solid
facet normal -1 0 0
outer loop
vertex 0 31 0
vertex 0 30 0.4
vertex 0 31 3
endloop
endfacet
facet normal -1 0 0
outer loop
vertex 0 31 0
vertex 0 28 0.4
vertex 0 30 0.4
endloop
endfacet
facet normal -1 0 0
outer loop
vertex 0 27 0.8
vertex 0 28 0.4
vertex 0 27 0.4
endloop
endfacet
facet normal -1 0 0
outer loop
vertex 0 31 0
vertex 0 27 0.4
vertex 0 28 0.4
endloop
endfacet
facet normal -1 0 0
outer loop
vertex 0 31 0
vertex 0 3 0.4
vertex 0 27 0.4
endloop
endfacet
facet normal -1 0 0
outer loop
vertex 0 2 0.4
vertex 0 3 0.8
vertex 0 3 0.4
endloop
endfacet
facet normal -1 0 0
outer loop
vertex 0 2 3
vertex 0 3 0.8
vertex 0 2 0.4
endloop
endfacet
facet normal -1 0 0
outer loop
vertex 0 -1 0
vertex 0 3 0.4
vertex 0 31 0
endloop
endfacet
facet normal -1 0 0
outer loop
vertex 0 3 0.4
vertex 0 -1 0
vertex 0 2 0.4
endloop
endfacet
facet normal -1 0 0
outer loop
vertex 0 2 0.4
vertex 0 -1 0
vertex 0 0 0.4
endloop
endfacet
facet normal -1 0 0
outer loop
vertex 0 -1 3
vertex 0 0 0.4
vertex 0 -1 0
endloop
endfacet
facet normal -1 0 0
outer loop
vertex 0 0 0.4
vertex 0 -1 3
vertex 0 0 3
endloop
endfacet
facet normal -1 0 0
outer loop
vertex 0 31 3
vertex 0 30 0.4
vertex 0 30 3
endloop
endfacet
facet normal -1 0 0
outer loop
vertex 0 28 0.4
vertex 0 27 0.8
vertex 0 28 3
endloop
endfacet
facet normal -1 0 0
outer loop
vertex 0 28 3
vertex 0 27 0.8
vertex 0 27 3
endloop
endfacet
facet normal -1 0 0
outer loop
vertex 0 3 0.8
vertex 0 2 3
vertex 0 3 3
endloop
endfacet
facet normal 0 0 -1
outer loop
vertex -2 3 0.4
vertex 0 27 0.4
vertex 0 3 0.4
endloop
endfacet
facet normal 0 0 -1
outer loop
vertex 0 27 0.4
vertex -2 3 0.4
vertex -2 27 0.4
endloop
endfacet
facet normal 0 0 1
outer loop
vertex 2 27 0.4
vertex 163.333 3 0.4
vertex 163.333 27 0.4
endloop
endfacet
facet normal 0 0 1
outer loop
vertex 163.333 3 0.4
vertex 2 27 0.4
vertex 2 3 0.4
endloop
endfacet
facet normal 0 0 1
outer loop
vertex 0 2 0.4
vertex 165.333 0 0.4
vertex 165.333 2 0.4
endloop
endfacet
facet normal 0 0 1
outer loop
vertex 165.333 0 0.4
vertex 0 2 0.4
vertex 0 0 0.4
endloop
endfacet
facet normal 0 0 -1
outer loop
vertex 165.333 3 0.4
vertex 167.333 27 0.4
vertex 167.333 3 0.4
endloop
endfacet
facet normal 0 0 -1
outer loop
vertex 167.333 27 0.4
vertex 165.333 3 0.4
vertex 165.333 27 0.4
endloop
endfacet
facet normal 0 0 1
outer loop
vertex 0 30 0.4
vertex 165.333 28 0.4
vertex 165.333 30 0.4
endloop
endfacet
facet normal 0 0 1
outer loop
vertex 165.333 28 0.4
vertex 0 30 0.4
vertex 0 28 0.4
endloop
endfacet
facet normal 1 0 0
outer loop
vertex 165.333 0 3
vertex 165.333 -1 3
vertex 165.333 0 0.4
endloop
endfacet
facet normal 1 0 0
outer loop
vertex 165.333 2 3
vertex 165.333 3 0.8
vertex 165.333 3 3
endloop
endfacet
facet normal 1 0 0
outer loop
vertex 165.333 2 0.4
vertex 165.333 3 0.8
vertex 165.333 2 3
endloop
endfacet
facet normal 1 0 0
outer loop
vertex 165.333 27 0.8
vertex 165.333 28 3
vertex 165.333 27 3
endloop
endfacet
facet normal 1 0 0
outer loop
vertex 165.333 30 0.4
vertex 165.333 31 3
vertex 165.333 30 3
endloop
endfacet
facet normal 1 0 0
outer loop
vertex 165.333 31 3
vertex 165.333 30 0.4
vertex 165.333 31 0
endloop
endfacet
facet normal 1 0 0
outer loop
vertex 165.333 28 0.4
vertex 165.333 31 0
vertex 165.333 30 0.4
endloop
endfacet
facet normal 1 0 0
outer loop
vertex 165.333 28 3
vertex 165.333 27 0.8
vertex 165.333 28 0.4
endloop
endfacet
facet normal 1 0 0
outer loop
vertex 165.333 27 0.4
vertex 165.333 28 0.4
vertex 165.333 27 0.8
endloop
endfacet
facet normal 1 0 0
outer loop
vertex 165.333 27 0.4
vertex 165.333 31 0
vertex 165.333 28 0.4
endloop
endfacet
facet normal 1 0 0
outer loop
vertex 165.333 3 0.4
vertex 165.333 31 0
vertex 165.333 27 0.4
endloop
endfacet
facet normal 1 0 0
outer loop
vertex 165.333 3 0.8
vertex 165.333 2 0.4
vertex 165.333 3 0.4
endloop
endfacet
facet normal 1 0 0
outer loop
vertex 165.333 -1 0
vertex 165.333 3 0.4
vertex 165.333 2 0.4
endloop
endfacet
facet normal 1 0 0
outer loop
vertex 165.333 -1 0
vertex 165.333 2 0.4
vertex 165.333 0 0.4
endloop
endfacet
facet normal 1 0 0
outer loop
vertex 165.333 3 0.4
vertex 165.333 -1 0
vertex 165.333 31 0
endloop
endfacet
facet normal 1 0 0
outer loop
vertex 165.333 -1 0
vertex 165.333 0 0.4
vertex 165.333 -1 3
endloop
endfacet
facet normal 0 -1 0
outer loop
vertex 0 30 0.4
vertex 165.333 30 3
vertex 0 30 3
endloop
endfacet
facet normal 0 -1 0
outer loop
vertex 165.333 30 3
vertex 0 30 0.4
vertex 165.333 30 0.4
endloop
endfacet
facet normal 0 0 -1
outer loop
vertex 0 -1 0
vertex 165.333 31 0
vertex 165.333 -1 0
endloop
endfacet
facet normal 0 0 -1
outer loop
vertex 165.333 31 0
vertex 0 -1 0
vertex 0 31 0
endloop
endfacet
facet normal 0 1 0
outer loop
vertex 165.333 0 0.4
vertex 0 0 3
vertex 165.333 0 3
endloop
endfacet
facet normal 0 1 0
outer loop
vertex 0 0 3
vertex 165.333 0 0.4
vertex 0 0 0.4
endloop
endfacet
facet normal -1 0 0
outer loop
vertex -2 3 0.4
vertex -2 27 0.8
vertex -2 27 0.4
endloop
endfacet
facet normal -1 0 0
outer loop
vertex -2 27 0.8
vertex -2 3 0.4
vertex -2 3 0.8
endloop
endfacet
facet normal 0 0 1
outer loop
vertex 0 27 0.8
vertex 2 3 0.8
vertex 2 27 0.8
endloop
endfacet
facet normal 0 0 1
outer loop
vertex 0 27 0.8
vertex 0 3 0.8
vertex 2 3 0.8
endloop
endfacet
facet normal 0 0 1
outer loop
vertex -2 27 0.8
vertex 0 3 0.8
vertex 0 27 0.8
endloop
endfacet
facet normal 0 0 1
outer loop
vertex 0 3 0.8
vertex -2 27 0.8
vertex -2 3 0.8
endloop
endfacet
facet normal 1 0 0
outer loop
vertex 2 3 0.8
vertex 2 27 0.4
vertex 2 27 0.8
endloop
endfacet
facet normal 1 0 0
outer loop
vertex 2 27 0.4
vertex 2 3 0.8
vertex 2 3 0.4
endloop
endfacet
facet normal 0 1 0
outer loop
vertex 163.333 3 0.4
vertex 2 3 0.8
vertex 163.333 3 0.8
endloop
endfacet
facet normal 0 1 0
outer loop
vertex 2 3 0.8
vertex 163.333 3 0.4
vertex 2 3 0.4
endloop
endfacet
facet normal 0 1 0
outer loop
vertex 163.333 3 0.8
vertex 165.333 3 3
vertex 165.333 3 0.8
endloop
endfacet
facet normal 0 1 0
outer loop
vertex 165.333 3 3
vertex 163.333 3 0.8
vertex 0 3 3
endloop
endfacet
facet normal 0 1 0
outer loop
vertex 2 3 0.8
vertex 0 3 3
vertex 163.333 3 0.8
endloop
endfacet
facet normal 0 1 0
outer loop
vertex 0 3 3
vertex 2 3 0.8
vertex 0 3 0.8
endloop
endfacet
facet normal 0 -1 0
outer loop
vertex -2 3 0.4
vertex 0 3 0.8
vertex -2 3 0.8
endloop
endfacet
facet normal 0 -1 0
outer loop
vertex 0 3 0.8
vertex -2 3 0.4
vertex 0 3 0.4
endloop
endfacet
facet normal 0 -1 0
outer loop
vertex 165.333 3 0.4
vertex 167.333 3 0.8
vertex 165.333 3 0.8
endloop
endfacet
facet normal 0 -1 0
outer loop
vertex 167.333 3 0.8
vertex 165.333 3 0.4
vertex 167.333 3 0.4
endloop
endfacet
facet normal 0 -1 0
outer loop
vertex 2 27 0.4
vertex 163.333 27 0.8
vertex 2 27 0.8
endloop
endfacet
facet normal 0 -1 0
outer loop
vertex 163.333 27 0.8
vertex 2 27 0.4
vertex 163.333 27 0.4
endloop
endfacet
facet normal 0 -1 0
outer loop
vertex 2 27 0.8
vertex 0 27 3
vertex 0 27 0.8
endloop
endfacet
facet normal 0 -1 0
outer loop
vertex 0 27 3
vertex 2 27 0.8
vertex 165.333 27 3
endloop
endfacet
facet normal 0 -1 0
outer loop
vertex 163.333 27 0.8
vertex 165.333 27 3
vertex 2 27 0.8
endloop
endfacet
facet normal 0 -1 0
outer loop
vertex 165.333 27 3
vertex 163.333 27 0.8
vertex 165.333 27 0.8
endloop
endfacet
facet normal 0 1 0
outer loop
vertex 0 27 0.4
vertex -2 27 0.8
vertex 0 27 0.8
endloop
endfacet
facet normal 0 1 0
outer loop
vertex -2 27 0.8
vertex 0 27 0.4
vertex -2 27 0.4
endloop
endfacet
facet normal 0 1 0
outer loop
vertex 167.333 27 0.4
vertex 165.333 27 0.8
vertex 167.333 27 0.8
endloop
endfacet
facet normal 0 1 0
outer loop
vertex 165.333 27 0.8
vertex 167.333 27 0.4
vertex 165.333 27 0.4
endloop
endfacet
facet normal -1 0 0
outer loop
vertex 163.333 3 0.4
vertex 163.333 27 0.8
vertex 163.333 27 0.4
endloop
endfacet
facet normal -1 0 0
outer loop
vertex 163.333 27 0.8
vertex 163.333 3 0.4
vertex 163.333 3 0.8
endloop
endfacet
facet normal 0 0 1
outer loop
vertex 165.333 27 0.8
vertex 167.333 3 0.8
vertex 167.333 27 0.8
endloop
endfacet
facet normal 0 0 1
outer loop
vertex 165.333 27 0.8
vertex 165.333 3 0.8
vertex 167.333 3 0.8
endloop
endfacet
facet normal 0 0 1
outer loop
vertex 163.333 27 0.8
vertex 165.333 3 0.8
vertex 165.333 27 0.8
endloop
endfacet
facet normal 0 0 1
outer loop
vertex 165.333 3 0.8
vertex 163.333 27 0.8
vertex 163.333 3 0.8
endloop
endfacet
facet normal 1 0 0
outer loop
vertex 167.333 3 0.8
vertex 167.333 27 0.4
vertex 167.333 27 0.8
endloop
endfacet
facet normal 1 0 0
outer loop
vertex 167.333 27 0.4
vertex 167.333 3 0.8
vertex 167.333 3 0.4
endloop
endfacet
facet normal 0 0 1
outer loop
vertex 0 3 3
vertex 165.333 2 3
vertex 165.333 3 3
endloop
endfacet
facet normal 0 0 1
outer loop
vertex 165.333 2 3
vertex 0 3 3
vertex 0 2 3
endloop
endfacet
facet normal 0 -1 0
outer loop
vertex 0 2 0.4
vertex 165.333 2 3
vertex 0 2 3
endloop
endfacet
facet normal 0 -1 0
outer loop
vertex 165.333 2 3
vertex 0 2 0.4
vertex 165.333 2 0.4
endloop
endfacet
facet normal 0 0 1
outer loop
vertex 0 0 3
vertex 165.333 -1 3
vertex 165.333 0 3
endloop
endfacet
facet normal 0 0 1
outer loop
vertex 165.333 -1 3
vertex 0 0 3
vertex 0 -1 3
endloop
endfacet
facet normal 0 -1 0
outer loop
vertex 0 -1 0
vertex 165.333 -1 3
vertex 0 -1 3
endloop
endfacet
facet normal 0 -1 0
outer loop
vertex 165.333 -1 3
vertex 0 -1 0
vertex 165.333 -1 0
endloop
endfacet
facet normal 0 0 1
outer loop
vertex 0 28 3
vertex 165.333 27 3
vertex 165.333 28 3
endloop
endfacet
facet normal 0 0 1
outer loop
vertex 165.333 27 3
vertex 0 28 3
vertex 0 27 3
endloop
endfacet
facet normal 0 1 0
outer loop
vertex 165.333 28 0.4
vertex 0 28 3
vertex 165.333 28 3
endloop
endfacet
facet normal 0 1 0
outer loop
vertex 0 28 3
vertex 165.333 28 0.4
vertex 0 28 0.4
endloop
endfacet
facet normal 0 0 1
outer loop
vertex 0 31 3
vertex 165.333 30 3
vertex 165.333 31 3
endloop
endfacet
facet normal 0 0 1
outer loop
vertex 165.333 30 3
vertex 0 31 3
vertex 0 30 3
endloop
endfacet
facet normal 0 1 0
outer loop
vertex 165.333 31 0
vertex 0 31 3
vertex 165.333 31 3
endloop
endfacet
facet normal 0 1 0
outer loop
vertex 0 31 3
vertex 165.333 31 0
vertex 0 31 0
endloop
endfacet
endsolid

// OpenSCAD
// The measures of the u-profile
ml_up_width=496;
ml_up_depth=30;
ml_up_heigth=20;
ml_up_thickness=2;

ml_dif_part_count=3;
ml_dif_thickness=0.4;

mf_dif_width=ml_up_width / ml_dif_part_count;

cube([mf_dif_width, ml_up_depth, ml_dif_thickness]);

color("cyan")
translate([-2, ml_up_thickness + 1, ml_dif_thickness])
cube([4, ml_up_depth - 2 - ml_up_thickness * 2, ml_dif_thickness]);

color("cyan")
translate([mf_dif_width-2, ml_up_thickness + 1, ml_dif_thickness])
cube([4, ml_up_depth - 2 - ml_up_thickness * 2, ml_dif_thickness]);

// Inner holder right
color("cyan")
translate([0, ml_up_thickness, ml_dif_thickness])
cube([mf_dif_width, 1, 3 - ml_dif_thickness]);

// Outer holder right
color("cyan")
translate([0, -1, 0])
cube([mf_dif_width, 1, 3]);

// Inner holder left
color("blue")
translate([0, ml_up_depth - ml_up_thickness - 1, ml_dif_thickness])
cube([mf_dif_width, 1, 3 - ml_dif_thickness]);

// Outer holder left
color("blue")
translate([0, ml_up_depth, 0])
cube([mf_dif_width, 1, 3]);
